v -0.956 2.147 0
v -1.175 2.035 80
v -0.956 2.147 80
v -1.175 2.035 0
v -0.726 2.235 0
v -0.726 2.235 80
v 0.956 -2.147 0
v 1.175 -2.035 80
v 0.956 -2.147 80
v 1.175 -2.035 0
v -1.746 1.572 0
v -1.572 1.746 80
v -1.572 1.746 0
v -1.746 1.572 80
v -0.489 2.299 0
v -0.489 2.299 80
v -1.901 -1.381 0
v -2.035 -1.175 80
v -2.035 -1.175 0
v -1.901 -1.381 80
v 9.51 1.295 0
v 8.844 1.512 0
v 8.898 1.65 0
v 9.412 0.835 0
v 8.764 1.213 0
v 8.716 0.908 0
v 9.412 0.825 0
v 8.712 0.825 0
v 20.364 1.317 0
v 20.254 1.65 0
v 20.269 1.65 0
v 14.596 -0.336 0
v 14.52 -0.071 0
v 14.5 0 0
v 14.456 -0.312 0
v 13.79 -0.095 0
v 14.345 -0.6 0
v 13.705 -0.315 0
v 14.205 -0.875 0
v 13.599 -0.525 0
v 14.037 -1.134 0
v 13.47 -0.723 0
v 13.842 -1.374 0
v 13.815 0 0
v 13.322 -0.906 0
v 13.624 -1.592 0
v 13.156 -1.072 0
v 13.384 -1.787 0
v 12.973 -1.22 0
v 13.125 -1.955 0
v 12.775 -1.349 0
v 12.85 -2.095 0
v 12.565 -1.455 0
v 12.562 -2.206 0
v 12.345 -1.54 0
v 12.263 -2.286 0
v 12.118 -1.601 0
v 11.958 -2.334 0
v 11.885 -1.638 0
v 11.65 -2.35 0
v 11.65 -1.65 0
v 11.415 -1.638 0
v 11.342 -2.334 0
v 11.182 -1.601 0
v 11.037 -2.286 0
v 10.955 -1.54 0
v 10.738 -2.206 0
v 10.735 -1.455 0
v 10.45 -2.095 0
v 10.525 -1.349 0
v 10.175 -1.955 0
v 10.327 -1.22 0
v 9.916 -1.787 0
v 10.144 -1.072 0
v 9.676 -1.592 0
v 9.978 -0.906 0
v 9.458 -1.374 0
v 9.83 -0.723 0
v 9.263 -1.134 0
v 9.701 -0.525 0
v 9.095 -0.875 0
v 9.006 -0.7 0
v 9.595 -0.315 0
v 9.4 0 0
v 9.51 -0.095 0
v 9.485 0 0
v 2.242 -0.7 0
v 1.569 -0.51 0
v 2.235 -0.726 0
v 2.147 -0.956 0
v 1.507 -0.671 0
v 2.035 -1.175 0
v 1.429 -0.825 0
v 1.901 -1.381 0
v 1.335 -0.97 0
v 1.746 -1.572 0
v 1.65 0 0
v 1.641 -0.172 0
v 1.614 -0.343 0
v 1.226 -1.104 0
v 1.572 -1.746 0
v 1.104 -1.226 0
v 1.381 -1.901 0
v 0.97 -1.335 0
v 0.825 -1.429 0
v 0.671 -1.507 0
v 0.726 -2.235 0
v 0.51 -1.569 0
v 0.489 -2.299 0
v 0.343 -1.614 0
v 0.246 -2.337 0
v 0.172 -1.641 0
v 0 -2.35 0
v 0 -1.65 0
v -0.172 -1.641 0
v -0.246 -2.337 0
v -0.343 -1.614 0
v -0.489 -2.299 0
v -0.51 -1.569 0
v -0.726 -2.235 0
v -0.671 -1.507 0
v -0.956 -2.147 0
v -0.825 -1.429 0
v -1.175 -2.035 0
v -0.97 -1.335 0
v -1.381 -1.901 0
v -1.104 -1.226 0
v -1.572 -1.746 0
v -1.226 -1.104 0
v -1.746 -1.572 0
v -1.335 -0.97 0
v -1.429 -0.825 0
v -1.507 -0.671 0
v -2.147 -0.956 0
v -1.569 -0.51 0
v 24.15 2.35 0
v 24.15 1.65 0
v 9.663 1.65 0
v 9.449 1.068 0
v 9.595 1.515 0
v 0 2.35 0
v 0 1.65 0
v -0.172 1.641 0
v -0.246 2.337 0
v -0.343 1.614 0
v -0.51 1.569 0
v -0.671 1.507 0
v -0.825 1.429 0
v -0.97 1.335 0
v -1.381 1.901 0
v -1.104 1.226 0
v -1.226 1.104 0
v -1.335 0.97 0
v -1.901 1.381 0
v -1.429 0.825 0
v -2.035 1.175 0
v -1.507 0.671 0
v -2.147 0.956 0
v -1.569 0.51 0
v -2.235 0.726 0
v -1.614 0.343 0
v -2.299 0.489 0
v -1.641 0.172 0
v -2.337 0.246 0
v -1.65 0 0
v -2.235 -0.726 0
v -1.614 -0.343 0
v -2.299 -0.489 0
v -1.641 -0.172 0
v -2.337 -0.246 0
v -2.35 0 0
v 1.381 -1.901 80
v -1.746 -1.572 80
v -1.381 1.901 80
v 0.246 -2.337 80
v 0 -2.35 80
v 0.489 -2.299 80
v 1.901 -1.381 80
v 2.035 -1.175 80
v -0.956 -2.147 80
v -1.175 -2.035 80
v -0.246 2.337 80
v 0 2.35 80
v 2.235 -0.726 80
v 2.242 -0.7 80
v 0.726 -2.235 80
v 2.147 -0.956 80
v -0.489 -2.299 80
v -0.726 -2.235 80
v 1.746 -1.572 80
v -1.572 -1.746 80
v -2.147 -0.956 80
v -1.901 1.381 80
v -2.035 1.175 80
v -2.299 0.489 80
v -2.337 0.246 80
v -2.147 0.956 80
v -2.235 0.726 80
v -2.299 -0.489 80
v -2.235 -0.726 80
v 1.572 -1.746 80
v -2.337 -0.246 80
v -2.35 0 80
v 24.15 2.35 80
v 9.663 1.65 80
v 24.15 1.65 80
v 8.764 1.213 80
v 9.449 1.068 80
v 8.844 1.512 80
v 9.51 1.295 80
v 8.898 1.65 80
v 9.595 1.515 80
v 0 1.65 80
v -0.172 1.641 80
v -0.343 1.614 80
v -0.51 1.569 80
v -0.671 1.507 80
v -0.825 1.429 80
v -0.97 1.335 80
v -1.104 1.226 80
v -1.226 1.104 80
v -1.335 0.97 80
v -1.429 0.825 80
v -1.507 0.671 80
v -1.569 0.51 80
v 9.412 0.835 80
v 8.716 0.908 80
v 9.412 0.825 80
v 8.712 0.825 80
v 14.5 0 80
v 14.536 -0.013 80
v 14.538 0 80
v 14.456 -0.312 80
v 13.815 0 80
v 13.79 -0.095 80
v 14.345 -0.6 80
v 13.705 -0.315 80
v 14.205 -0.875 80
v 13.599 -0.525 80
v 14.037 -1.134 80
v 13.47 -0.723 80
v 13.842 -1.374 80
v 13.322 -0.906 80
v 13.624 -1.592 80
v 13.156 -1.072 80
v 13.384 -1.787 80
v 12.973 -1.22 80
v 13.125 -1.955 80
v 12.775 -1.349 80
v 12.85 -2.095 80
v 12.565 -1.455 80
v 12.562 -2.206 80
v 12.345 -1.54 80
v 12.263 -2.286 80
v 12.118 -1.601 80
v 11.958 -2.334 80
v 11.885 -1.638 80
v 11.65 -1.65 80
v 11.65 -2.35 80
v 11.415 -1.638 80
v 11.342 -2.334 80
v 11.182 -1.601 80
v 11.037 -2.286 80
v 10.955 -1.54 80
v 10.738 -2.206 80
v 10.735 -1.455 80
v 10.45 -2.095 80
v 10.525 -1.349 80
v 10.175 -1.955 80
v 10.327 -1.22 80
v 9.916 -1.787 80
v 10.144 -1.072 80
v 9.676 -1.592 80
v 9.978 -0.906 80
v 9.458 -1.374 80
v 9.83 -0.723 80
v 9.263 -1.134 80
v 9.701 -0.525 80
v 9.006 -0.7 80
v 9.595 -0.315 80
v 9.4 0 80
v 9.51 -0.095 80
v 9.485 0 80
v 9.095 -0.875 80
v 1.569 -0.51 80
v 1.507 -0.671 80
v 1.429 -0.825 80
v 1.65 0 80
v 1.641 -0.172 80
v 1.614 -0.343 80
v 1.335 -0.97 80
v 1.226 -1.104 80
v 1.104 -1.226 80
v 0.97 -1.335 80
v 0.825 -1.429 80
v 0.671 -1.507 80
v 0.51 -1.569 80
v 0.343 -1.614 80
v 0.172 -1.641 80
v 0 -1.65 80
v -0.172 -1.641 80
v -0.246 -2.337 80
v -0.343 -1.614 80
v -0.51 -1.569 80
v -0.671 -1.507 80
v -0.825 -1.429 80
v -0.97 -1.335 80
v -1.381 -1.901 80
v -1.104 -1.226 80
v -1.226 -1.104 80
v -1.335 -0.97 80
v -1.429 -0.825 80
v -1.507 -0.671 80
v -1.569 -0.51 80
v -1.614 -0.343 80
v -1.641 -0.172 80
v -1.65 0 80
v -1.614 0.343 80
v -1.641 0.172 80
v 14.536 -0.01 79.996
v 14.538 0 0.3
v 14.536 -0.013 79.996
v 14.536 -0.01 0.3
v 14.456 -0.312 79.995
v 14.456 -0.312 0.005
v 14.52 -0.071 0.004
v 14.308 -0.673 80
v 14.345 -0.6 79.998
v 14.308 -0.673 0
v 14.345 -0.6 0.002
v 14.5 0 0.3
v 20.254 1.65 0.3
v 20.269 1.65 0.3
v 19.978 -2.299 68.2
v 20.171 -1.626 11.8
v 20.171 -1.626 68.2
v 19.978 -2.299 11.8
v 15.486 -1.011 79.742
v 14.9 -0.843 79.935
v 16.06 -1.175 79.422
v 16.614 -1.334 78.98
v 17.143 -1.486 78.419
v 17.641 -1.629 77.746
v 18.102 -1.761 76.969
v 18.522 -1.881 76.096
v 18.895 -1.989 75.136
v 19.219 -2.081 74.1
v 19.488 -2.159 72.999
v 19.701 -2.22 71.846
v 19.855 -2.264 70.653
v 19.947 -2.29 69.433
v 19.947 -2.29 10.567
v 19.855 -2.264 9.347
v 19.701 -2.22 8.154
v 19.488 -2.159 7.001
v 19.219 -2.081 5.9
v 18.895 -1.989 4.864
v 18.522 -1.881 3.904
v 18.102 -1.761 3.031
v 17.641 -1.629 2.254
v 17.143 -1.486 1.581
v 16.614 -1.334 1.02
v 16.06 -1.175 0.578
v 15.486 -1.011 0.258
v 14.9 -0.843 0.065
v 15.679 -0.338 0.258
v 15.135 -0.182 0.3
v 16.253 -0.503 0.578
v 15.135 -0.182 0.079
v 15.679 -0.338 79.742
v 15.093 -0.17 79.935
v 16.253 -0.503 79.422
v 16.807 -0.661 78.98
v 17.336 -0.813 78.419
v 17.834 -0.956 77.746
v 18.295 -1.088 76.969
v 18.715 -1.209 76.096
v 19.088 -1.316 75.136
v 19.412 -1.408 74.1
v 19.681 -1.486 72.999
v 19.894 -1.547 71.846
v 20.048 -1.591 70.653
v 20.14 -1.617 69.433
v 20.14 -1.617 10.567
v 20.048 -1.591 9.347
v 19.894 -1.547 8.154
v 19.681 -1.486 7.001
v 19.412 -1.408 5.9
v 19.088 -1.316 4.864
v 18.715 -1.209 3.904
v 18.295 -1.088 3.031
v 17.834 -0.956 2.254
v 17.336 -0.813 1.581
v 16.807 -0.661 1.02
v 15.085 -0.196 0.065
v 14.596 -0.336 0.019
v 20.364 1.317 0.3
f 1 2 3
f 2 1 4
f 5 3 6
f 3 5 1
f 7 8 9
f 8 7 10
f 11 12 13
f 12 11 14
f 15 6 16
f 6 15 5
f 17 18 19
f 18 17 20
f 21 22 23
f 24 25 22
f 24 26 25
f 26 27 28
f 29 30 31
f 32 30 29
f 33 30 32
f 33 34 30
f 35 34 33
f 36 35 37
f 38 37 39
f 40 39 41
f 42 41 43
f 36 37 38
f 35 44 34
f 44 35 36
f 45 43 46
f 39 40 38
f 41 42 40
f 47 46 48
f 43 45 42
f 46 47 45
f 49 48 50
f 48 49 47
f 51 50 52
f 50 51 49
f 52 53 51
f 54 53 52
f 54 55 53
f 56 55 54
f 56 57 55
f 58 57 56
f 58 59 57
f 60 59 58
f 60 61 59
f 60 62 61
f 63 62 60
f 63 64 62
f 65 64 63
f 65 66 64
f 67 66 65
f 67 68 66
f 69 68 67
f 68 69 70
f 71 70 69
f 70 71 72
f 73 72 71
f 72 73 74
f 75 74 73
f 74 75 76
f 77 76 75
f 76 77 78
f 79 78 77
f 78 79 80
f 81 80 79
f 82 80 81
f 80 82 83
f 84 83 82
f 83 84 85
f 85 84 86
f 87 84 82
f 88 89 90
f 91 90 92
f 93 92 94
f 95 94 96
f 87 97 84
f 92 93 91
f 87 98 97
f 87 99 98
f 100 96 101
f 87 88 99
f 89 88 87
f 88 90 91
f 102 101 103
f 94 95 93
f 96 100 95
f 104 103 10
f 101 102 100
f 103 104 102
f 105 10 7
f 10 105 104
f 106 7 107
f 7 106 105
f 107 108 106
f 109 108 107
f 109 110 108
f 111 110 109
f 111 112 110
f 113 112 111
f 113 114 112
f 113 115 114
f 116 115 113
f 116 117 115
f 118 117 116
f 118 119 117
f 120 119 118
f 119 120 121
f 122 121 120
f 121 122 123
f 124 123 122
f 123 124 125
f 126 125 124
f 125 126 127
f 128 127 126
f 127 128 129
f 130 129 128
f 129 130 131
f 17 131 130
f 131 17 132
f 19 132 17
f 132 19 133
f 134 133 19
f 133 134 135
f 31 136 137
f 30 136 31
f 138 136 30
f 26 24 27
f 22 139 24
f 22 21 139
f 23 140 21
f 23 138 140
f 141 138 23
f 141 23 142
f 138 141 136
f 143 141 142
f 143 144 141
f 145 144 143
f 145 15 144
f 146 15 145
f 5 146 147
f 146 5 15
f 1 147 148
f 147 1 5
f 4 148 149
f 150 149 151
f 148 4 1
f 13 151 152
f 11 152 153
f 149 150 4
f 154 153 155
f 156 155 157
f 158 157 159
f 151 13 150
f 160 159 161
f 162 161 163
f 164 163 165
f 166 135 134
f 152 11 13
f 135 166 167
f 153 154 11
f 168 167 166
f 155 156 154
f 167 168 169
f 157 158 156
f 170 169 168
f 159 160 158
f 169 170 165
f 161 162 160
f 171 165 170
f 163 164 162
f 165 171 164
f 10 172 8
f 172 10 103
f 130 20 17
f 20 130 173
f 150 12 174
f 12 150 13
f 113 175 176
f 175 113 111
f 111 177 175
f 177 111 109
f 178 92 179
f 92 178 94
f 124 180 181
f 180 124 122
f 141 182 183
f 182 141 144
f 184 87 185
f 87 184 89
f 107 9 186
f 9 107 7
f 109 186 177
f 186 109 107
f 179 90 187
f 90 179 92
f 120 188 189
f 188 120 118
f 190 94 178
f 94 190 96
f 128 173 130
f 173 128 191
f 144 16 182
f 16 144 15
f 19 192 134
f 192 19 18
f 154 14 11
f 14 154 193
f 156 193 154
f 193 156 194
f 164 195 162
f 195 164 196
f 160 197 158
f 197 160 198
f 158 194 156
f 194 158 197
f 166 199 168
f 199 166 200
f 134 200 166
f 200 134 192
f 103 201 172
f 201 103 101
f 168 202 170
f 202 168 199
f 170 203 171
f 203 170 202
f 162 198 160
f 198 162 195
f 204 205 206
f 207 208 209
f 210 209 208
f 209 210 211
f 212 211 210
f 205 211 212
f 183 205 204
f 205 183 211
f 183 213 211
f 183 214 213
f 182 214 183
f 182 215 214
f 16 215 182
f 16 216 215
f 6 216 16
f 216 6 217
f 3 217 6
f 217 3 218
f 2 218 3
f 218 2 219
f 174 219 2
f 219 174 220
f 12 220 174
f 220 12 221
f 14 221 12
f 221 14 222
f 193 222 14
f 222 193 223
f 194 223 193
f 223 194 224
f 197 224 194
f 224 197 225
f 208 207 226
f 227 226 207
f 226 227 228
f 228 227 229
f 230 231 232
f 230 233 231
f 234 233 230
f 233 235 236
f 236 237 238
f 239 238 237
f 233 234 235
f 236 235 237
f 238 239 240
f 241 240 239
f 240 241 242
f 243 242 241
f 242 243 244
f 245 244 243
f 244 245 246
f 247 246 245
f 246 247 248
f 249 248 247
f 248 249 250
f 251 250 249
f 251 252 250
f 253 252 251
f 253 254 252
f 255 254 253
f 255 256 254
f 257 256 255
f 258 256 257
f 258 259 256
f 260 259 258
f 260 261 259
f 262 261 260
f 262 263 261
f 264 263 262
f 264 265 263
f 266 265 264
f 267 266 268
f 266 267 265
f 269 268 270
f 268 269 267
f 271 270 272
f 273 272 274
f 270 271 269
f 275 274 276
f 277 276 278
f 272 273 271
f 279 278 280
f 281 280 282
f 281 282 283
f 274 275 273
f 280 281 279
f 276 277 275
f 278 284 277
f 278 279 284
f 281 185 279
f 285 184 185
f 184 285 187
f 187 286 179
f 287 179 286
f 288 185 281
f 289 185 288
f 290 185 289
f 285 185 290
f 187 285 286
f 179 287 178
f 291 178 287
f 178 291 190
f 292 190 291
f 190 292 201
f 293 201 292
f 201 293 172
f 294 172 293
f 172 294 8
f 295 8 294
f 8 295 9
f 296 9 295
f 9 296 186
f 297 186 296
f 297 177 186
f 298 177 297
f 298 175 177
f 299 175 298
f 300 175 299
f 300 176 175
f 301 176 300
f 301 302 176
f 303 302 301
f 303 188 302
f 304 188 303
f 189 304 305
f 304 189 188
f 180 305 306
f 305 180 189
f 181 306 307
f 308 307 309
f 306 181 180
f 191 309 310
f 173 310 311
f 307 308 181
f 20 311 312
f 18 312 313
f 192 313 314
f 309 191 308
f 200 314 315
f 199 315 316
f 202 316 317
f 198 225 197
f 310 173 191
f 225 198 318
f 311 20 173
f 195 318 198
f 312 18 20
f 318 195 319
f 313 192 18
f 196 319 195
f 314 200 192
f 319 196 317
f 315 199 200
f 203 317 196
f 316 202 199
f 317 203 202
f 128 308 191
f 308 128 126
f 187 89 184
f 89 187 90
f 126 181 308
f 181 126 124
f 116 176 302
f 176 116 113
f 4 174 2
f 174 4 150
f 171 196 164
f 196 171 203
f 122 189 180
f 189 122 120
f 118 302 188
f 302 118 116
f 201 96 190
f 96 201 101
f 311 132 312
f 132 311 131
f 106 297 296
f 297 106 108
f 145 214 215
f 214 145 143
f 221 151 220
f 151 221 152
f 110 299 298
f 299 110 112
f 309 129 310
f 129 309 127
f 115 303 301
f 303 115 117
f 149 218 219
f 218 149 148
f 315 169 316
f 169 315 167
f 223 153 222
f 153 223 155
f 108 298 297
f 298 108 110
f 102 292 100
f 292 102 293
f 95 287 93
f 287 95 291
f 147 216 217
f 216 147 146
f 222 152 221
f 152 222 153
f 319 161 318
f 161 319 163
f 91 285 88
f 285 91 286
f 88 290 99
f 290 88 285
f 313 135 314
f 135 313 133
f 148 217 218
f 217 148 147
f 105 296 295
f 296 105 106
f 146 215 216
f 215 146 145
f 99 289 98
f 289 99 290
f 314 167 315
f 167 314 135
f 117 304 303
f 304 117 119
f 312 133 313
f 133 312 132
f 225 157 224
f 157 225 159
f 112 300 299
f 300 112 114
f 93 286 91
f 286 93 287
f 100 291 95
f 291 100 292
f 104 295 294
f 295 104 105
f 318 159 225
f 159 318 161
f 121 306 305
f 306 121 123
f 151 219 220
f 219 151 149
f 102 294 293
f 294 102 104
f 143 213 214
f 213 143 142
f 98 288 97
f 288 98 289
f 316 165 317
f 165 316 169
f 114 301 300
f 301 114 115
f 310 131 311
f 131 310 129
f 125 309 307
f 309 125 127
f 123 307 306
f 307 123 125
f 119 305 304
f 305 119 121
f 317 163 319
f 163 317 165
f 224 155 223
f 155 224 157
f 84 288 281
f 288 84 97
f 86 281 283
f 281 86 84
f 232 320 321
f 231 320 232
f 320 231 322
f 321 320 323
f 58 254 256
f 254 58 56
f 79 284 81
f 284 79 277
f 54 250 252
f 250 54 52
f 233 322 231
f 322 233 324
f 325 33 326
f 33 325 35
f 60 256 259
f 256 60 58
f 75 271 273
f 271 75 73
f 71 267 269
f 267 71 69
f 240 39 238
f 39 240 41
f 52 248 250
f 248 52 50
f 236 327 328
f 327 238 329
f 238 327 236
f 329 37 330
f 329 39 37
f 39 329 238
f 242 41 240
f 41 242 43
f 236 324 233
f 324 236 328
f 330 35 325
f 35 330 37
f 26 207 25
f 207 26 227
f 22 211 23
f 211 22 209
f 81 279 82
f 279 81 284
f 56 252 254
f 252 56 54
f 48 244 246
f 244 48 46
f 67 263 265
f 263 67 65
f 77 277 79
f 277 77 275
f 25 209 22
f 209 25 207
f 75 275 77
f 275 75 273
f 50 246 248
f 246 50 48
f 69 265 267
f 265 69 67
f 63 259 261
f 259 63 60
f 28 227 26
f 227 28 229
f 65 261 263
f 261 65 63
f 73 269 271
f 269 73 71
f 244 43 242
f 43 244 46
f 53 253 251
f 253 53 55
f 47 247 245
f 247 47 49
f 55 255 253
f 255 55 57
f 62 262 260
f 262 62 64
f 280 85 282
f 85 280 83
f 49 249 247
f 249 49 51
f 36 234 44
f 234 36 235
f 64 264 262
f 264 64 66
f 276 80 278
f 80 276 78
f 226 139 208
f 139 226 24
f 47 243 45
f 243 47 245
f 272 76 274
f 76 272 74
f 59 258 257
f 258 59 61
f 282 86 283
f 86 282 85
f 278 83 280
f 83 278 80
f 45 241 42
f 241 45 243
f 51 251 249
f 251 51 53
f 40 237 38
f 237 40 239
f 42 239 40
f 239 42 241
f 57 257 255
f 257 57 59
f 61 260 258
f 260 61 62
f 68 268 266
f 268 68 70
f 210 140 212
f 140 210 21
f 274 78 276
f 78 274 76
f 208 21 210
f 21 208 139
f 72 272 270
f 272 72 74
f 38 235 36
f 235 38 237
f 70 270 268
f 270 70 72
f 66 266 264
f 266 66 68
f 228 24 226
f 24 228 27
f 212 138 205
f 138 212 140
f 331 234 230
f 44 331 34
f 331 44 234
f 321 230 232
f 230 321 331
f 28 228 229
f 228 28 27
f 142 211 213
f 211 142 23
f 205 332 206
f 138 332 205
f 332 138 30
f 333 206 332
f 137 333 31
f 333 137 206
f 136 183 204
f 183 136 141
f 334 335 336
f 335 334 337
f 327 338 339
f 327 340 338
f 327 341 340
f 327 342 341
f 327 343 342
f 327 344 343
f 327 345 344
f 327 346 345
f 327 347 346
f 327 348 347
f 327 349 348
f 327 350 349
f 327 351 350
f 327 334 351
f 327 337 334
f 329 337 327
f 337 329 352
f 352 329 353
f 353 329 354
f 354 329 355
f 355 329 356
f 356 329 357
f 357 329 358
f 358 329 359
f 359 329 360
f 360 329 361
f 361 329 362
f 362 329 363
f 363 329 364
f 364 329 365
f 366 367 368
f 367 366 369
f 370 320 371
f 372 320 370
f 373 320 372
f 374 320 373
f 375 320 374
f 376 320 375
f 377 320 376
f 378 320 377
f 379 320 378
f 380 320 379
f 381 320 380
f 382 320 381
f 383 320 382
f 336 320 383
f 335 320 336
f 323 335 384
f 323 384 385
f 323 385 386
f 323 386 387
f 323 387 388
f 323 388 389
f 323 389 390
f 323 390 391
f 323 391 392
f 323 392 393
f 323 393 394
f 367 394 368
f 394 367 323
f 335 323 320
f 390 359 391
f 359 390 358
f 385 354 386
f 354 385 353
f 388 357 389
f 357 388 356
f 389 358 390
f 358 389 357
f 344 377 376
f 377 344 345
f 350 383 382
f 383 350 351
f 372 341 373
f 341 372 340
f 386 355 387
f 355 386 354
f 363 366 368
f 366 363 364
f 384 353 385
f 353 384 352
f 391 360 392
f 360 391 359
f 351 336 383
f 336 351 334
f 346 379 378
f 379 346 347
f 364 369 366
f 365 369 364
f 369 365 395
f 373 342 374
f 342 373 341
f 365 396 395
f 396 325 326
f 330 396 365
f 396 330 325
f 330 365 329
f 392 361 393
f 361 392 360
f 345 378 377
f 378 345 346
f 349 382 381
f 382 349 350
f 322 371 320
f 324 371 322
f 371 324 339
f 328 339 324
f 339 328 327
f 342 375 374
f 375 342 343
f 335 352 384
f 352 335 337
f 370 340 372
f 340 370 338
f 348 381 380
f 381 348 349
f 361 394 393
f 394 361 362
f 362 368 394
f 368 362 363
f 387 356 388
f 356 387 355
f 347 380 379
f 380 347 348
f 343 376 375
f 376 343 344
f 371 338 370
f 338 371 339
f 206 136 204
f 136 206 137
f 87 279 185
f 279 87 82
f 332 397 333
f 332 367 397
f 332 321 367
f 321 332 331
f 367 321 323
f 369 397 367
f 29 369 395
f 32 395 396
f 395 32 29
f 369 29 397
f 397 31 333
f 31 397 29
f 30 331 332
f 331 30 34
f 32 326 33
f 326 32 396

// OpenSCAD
CABLE_D =  4.5;
CLIP_L  = 80;

DEPTH   =  5             -.3;
TH      =  0.7;

ATOM = 0.01;
$fn = 60;

module tube(d_ext) {
    difference() {
        cylinder(d=d_ext, h=CLIP_L);

        translate([0, 0, -ATOM])
        cylinder(d=d_ext-TH*2, h=CLIP_L+ATOM*2);
    }
}

module clip() {
    // semi-tube
    difference() {
        rotate([-90, 0, 0]) tube(DEPTH);

        translate([0, -ATOM, -CABLE_D])
        cube([CABLE_D, CLIP_L+ATOM*2, CABLE_D]);
    }

    d = CABLE_D+TH*2;
    l = DEPTH * 2;

    // ground plate
    translate([0, 0, -DEPTH/2])
    cube([l + d*2.5, CLIP_L, TH]);

    // mid plate
    translate([DEPTH/2-TH, 0, 0])
    cube([l - DEPTH/2 + TH, CLIP_L, TH]);

    // cable clip
    translate([l + d/2 -TH, 0, 0])
    difference() {
        z = DEPTH/2 - (CABLE_D/2+TH*2) + TH;
        translate([0, 0, z])
        rotate([-90, 0, 0]) tube(d);

        h = (DEPTH/2 - TH) / 2;
        translate([-d, -ATOM, -h])
        cube([d*2, CLIP_L+ATOM*2, h]);

        h2 = (DEPTH/2 - TH);
        translate([0, -ATOM, -h2])
        cube([d, CLIP_L+ATOM*2, h2]);

        translate([-d, -ATOM, -DEPTH/2-h2])
        cube([d*2, CLIP_L+ATOM*2, h2]);
    }

    // funnel
    x = l + d -TH -.1;
    translate([x, 0, 0])
    rotate([0, -16, 0]) intersection() {
        cube([d, CLIP_L, TH]);
        
        hull() for(y=[d*2, CLIP_L - d*2])
            translate([0, y, 0])
            scale([1, 2, 1])
            cylinder(d=d*2, h=TH*3, center=true);
    }

    // avoid inner brim
    translate([x, 0, 0])
    rotate([0, 16, 0]) cube([d+.1, .3, TH/2]);

}


rotate([90, 0, 0])
clip();
